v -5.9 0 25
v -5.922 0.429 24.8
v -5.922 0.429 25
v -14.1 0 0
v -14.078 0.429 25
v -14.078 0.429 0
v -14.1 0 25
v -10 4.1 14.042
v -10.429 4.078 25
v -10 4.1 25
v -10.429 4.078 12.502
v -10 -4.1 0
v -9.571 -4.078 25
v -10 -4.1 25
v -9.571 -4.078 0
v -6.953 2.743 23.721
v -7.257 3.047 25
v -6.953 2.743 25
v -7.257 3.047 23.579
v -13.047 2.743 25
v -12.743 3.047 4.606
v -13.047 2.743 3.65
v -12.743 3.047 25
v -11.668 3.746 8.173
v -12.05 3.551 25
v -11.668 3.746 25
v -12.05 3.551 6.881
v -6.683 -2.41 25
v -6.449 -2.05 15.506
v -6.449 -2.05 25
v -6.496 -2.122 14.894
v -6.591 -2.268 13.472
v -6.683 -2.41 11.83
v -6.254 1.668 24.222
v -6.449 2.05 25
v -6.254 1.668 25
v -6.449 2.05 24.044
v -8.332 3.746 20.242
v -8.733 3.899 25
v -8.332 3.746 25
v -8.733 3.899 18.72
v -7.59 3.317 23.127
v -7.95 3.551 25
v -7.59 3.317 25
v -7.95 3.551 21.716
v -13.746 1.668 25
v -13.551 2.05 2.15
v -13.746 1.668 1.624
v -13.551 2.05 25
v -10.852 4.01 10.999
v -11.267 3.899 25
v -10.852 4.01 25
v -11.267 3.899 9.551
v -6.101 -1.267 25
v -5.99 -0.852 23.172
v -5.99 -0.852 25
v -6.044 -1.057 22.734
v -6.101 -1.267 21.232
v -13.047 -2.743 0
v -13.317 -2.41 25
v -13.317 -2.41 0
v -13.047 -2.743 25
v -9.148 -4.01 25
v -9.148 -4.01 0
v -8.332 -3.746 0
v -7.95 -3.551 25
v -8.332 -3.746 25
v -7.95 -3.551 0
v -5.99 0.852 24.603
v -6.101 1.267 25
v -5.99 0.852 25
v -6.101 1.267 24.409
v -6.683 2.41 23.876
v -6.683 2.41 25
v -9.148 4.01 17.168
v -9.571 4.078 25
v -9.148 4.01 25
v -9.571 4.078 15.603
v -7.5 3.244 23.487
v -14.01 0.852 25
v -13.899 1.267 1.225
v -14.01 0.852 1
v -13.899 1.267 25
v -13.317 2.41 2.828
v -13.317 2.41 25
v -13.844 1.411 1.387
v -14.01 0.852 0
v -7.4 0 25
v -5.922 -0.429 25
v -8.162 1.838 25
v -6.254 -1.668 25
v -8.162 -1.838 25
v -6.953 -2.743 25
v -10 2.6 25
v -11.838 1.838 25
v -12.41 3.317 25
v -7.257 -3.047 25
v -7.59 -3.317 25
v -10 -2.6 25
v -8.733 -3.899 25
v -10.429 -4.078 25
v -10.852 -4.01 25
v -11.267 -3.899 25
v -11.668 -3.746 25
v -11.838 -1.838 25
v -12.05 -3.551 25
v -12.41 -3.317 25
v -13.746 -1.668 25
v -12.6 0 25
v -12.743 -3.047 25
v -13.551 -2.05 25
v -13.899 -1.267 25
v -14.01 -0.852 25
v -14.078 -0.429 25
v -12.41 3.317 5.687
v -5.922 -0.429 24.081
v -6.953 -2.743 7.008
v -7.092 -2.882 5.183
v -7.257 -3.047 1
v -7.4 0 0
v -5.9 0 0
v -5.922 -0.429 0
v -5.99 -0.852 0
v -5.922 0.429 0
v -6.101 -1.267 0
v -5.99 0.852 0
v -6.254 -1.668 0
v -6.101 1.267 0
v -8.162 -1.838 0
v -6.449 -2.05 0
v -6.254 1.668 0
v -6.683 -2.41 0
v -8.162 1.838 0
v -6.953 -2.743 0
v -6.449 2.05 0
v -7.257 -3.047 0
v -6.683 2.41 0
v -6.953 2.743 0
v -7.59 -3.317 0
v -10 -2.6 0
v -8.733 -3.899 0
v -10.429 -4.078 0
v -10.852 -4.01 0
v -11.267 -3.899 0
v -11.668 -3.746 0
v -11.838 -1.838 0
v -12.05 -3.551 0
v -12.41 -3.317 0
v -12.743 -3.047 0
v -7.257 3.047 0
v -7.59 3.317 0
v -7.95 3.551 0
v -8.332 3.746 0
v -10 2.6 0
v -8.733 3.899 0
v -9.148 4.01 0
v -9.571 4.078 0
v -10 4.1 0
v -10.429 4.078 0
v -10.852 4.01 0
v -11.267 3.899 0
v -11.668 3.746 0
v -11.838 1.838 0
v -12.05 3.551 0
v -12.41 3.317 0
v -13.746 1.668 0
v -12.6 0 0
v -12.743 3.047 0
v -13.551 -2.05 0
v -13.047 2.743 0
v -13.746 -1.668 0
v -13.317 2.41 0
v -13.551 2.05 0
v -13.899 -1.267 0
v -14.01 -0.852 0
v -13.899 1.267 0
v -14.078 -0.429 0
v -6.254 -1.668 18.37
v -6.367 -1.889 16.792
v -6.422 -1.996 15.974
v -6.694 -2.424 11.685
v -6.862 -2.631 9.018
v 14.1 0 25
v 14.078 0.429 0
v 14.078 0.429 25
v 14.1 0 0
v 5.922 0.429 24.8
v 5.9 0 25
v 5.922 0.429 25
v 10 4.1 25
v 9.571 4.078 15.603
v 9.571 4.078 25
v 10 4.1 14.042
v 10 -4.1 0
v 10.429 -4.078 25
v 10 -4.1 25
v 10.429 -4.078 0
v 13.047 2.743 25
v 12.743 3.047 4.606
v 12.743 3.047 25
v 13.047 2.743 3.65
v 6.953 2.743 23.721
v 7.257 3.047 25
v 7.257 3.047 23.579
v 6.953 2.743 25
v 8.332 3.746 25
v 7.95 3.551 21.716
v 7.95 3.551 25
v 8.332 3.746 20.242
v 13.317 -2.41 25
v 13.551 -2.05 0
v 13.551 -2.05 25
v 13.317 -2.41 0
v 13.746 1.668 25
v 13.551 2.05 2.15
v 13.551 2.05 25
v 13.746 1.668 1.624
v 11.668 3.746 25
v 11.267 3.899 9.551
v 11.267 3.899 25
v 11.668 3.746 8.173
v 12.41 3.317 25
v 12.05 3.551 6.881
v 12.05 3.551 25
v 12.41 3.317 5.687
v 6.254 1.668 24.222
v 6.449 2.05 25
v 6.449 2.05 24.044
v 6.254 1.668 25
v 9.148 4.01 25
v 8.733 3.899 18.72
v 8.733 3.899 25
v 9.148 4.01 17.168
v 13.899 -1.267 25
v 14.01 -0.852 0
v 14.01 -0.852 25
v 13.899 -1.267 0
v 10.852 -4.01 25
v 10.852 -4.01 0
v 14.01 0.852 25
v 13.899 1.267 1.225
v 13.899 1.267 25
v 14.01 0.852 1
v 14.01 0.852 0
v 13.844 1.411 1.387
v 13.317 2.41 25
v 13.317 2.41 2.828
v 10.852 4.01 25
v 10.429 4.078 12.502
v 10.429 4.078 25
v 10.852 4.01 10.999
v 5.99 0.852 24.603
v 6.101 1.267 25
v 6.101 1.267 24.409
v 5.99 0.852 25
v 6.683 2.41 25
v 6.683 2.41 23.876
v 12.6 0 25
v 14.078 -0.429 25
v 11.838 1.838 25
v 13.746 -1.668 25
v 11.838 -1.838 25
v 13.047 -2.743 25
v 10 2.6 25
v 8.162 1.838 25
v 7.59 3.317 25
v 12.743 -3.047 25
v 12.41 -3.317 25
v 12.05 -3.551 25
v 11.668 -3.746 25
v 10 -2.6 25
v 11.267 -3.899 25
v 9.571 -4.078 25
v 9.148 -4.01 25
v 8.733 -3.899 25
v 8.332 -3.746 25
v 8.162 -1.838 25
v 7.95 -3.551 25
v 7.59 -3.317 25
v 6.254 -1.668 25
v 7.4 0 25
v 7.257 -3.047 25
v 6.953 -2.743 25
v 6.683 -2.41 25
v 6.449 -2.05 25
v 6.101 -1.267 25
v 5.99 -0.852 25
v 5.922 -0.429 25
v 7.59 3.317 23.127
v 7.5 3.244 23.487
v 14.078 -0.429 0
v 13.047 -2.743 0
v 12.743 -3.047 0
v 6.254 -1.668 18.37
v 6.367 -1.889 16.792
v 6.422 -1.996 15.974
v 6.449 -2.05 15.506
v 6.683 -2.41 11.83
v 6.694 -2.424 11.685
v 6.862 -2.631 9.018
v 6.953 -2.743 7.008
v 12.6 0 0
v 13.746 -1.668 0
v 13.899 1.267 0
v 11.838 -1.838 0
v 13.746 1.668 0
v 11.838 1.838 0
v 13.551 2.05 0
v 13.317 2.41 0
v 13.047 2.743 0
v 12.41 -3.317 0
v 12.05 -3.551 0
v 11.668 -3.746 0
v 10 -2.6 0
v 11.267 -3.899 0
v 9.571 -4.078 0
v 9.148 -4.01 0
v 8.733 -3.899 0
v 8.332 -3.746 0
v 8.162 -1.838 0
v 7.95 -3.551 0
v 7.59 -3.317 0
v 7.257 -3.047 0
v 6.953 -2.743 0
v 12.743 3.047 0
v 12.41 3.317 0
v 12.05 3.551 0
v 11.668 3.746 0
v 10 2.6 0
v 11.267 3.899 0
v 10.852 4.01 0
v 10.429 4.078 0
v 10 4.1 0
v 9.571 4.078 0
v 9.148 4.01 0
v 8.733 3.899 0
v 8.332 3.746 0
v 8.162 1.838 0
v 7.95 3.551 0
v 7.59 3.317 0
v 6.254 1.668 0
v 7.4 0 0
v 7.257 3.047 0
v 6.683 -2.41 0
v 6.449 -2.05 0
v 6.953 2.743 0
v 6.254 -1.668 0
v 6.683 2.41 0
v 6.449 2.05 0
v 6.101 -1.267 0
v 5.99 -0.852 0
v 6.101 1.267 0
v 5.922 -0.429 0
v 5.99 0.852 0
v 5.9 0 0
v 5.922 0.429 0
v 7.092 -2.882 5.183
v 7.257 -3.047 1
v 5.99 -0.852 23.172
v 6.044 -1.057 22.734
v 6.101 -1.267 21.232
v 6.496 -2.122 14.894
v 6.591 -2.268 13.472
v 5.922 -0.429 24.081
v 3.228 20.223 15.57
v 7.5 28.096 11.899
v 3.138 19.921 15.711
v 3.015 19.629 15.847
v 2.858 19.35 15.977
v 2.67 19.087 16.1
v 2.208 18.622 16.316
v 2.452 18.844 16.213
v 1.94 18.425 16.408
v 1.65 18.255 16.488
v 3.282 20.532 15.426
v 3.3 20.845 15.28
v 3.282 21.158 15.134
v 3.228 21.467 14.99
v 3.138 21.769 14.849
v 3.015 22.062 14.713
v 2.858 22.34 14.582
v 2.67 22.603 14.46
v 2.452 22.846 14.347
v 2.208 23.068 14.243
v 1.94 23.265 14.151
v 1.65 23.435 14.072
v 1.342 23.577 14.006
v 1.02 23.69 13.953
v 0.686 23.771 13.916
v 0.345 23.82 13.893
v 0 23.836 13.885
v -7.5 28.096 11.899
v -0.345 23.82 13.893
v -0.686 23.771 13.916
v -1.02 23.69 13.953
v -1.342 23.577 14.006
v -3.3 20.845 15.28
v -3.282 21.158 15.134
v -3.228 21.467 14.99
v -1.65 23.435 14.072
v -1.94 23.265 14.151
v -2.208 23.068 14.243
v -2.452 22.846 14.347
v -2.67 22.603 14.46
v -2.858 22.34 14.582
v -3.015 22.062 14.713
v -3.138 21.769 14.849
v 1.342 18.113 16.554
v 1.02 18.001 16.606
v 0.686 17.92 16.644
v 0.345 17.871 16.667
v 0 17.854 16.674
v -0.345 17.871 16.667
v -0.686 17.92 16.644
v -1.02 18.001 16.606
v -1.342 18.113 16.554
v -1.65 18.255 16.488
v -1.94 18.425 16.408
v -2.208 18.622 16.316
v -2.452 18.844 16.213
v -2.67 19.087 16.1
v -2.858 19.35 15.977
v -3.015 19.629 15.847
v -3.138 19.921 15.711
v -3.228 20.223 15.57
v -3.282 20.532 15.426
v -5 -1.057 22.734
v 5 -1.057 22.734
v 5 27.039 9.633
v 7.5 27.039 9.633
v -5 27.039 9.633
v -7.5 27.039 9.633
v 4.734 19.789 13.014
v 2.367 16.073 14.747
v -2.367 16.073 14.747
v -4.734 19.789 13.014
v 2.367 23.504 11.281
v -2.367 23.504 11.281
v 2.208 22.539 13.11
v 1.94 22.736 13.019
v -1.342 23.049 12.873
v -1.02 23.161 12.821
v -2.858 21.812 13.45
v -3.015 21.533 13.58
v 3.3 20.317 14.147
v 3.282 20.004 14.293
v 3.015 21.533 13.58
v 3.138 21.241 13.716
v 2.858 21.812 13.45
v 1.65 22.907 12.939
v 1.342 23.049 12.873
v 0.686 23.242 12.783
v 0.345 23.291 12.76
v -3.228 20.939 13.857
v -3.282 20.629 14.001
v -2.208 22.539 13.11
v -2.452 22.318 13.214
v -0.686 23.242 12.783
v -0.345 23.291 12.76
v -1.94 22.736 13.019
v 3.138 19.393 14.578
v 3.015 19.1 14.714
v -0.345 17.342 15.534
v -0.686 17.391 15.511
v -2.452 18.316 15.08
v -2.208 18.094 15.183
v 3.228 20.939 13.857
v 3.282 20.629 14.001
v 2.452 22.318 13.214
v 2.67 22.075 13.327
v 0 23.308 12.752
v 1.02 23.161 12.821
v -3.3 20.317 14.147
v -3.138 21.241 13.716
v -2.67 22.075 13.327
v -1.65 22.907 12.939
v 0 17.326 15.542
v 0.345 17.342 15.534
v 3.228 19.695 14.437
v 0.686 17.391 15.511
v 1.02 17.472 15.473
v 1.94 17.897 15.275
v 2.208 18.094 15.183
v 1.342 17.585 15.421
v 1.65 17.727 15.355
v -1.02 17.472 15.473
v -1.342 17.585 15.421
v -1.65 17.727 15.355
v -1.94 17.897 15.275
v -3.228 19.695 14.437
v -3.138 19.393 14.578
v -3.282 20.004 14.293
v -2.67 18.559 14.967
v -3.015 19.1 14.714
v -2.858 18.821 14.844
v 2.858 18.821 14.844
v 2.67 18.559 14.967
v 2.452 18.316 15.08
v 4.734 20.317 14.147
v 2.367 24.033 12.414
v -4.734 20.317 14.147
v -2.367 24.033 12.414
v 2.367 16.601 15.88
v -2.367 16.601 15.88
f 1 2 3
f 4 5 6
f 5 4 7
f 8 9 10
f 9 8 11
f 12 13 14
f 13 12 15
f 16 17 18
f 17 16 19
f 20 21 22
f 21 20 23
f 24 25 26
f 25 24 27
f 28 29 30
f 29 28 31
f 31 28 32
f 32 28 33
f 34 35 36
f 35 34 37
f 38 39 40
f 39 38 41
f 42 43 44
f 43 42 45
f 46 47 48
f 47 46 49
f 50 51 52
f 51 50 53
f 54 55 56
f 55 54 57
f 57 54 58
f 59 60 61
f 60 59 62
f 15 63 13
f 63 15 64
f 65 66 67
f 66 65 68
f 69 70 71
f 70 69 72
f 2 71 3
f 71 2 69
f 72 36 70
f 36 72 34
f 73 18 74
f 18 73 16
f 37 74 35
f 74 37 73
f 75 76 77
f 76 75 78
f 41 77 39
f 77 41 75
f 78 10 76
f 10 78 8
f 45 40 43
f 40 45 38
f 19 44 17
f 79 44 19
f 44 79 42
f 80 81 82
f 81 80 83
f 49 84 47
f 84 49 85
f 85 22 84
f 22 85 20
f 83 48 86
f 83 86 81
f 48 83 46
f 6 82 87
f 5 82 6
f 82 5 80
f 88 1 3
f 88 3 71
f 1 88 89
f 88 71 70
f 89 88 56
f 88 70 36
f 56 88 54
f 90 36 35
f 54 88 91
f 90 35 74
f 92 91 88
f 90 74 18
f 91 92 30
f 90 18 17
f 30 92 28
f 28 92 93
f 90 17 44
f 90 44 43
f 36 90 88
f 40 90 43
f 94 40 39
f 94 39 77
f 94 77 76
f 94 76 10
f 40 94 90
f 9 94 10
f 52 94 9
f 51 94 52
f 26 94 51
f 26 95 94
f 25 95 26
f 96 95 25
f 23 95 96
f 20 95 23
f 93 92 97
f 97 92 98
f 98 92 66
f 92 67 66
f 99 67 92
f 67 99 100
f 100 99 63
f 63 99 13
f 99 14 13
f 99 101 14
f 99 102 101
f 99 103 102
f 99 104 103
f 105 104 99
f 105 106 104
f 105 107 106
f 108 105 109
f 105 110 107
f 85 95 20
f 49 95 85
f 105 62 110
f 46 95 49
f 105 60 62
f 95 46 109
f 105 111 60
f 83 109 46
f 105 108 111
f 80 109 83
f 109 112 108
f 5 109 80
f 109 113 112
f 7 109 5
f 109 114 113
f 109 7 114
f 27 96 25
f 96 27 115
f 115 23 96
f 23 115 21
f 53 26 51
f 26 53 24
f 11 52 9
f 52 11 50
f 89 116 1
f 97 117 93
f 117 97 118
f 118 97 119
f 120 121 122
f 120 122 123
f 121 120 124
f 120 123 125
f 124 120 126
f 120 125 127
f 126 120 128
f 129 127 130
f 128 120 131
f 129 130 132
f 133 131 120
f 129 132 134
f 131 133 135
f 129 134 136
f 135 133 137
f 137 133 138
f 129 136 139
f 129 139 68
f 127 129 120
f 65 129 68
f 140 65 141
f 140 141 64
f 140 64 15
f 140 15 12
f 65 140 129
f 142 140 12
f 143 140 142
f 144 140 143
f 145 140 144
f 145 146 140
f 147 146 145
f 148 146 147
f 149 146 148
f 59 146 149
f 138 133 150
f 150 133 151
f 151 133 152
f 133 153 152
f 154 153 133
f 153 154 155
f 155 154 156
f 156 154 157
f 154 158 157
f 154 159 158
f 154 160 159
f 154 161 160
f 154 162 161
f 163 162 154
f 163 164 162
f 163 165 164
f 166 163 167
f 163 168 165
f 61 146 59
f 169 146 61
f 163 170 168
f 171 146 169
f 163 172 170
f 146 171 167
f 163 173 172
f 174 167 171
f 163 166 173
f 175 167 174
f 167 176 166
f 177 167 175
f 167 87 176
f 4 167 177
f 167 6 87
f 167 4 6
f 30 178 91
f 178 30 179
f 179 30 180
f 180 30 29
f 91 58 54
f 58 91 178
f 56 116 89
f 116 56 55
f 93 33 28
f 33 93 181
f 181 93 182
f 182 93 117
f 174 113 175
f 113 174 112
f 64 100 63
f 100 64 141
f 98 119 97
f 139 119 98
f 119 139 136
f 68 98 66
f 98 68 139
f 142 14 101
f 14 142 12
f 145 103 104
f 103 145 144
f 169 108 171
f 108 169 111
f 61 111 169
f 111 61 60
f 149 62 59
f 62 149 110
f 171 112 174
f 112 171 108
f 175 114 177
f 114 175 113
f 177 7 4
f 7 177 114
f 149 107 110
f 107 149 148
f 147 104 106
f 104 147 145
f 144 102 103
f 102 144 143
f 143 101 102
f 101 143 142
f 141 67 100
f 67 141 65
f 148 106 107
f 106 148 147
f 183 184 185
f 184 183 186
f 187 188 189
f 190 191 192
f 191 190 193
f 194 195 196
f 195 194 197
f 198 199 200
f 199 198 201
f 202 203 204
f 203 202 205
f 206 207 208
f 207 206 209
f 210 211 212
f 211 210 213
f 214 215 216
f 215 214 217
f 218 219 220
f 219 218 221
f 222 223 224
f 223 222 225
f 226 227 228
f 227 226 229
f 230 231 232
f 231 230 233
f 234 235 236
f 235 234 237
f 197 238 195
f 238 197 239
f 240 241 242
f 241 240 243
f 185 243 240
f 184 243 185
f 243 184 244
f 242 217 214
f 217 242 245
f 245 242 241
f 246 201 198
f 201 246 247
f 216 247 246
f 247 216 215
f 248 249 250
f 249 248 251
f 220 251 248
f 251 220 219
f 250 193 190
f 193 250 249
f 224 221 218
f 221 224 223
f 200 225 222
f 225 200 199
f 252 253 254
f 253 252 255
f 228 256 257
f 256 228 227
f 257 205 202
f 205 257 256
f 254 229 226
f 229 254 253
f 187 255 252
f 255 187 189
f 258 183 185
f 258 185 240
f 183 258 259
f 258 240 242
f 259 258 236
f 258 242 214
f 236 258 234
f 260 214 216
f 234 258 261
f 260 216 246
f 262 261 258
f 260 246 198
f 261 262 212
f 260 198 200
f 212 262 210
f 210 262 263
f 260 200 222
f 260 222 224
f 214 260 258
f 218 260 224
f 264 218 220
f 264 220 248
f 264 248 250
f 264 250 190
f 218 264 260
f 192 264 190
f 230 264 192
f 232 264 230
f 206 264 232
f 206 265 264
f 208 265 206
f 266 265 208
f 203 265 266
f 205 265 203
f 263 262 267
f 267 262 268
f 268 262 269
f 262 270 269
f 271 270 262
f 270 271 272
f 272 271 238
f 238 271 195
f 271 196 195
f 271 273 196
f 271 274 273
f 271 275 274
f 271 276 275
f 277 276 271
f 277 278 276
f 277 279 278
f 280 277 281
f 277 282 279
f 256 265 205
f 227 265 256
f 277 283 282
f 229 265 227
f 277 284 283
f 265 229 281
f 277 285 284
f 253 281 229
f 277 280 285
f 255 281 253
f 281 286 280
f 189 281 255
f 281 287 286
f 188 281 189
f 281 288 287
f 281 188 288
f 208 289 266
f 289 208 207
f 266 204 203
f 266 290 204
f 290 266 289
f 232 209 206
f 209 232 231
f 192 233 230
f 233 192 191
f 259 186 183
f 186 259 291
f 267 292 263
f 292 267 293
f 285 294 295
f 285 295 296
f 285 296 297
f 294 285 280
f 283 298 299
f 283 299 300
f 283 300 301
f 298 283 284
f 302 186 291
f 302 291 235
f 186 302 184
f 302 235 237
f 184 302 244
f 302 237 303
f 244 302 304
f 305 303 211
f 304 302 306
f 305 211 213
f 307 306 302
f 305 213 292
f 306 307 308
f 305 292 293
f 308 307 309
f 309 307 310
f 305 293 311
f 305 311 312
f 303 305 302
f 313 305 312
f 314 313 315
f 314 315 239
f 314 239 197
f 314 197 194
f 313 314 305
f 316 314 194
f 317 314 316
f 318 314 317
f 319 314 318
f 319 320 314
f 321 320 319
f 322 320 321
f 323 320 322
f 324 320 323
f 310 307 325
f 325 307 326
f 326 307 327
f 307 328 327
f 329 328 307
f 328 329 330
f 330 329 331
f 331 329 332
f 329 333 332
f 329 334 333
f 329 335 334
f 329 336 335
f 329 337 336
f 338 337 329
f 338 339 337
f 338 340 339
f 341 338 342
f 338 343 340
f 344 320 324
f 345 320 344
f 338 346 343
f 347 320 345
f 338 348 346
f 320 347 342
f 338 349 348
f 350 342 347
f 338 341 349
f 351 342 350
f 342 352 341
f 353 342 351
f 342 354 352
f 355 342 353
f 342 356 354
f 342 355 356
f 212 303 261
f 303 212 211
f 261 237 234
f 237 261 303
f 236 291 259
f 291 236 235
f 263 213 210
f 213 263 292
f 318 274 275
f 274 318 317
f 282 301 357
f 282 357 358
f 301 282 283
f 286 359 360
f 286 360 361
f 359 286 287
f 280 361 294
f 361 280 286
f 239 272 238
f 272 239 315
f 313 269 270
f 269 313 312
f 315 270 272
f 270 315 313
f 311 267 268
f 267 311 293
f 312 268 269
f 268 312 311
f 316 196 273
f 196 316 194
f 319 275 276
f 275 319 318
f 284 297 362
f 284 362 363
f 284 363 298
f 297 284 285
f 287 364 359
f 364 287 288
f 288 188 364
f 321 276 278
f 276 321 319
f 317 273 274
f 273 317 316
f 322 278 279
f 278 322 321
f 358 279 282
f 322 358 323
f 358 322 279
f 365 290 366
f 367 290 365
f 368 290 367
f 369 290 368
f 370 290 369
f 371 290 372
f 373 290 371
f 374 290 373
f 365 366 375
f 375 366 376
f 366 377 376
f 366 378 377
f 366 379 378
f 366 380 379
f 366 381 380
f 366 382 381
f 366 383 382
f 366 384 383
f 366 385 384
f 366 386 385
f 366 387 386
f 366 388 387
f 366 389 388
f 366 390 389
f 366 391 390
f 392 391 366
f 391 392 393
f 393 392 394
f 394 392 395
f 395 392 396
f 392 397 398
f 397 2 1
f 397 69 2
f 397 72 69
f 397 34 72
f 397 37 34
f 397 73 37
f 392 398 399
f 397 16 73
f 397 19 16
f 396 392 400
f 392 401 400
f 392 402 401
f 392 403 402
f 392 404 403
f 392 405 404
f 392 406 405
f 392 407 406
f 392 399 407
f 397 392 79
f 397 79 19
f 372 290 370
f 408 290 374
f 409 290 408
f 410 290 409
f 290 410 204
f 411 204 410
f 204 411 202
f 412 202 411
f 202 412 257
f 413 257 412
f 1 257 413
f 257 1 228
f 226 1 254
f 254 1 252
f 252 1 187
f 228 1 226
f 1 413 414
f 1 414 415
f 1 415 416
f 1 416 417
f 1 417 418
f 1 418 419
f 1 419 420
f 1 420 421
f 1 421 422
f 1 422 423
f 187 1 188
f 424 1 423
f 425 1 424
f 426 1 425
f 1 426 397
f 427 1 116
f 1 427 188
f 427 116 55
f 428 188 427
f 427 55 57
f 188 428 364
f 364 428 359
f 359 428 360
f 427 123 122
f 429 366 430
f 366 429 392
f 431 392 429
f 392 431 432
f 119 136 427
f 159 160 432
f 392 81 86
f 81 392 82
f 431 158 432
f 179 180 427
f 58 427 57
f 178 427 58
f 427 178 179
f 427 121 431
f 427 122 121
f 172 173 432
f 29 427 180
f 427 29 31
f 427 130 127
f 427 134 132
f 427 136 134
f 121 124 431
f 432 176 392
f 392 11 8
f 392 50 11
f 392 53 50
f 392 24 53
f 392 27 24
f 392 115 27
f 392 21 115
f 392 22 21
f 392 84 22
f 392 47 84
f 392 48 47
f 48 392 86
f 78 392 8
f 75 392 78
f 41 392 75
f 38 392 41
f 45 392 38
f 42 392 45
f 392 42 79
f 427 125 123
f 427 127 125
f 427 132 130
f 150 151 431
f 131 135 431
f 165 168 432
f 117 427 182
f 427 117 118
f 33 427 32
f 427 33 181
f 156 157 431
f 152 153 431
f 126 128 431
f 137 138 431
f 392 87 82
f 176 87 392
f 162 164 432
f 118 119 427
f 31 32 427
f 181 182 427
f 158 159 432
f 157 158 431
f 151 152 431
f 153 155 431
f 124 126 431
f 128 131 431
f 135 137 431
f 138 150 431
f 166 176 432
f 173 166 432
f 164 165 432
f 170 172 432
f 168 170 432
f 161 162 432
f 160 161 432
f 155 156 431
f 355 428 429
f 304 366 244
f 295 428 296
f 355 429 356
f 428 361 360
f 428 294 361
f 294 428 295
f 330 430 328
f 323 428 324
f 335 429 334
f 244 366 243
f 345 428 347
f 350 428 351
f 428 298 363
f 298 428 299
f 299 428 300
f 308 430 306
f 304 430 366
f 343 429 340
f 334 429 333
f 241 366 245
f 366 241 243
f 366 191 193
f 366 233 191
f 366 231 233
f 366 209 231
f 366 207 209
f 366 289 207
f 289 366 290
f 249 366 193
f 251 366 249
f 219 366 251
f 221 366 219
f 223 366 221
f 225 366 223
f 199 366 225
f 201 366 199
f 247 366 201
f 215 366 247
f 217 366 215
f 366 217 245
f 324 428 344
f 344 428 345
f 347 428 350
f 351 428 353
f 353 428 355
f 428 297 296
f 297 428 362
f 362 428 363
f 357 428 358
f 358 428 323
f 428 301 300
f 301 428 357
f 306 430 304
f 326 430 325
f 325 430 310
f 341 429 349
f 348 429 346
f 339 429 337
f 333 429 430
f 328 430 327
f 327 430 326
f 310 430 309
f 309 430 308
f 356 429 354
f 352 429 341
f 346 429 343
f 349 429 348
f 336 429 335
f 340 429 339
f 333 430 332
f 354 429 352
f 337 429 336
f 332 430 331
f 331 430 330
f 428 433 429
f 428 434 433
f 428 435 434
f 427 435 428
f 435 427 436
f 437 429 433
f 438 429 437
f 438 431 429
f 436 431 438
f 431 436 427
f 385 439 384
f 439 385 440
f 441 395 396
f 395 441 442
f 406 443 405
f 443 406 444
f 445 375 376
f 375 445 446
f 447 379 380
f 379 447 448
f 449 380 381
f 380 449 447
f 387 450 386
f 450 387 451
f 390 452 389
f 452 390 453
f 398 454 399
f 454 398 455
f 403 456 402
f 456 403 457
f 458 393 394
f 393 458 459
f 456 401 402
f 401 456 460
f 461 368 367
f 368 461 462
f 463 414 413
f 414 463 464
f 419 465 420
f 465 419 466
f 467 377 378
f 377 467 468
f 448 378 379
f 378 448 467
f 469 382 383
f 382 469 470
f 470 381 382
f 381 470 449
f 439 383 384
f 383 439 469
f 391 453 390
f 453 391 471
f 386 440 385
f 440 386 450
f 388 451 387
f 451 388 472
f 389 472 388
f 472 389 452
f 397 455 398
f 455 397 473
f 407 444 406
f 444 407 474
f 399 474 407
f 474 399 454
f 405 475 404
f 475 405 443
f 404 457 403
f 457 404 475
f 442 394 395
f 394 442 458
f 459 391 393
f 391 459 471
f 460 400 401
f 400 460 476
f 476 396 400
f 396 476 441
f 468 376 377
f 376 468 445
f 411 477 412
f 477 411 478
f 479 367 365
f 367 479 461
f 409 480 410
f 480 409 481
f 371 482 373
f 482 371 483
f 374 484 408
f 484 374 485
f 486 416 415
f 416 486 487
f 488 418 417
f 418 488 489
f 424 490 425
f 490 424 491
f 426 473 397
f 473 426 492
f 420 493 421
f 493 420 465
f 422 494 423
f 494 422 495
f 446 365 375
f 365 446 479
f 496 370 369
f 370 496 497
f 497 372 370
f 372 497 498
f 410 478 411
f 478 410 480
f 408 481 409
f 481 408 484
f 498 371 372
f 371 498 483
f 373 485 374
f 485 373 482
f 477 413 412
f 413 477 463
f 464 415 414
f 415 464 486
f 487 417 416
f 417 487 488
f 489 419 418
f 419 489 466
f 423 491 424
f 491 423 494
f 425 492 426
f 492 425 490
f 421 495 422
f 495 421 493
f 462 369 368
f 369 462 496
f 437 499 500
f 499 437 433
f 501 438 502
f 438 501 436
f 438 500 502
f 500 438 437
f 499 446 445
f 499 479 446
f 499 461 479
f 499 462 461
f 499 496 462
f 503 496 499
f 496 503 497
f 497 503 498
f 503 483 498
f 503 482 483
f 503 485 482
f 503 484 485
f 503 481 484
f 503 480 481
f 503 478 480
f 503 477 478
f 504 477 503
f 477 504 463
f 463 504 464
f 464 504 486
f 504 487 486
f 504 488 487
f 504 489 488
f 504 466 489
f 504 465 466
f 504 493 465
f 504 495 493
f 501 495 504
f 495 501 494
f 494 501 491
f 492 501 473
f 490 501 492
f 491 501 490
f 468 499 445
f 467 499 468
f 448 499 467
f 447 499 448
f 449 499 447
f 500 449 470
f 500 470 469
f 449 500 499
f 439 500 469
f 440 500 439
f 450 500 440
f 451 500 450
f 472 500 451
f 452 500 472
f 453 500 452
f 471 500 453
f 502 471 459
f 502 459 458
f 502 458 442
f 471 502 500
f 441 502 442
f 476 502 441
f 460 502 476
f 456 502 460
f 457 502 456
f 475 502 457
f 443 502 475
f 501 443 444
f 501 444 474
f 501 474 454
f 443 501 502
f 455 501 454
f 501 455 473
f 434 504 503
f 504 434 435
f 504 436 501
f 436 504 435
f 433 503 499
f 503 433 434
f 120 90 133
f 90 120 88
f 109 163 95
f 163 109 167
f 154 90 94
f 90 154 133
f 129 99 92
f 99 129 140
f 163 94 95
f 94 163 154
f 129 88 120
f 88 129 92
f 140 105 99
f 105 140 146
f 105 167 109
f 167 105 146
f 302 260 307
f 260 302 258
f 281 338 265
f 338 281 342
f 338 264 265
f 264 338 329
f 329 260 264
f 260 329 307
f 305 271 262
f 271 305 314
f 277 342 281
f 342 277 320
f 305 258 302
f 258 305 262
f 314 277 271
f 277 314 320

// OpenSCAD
// =============================================================================
// PROJECT: UNIVERSAL FPV SMA STANDOFF MOUNT
// VERSION: 4.0 (Final Parametric Library Version)
// DESCRIPTION: A support-free, TPU-optimized mount that slides over rear 
//              frame standoffs. Designed for SMA Bulkhead fittings.
// =============================================================================

/* [Frame Physical Dimensions] */
// Center-to-center distance between your rear standoffs (mm)
standoff_dist   = 20.0;  
// Diameter of your standoffs (Standard M3 is usually 5.0 to 5.5mm)
standoff_dia    = 5.0;   
// Height of standoffs (Distance between bottom and top plates)
standoff_height = 25.0;  
// Thickness of the TPU walls around the standoffs
wall_thickness  = 1.6;   
// Adjustment for fit (Negative values make the hole tighter for TPU "grip")
fit_tolerance   = 0.2;  

/* [Antenna Platform Settings] */
// Angle of the antenna tilted back from vertical (Degrees)
antenna_angle   = 25;    
// Distance from the front edge of the mount to the center of the SMA hole
platform_offset = 23.0;  
// Width of the rectangular mounting surface
platform_w      = 15.0;  
// Extra material behind the hole for crash durability (mm)
platform_padding = 8.0;  
// Thickness of the mounting plate (2.5mm is ideal for Bulkhead threads)
mounting_thick  = 2.5;   

/* [Hardware Specifications] */
// Diameter for the threaded SMA barrel (6.4mm - 6.6mm is standard)
sma_hole_dia    = 6.6;   
// Hex nut flat-to-flat size (8.0mm - 8.2mm is standard)
sma_hex_flat    = 8.2;   
// Thickness of the "Shoulder" that the nut presses against
shoulder_thick  = 1.25; 

/* [Internal Math - Do Not Change] */
$fn = 60; // Smoothness of circles
platform_l = platform_offset + platform_padding; // Total plate length

// =============================================================================
// RENDER LOGIC
// =============================================================================

difference() {
    // --- STEP 1: CREATE THE SOLID BODY ---
    union() {
        // Create the left and right standoff sleeves
        for(i=[-1, 1]) {
            translate([i * standoff_dist/2, 0, 0])
                cylinder(h=standoff_height, d=standoff_dia + (wall_thickness*2));
        }

        // Create the Mounting Platform (Angled Rectangle)
        // Positioned flush at (0,0,standoff_height)
        translate([0, 0, standoff_height]) 
            rotate([-antenna_angle, 0, 0])
                translate([-platform_w/2, 0, -mounting_thick]) 
                    cube([platform_w, platform_l, mounting_thick]);

        // Create the Structural Rib Trusses (Reinforcing Ramps)
        for(i=[-1, 1]) {
            hull() {
                // Top Anchor: Locked to the side face of the angled plate
                translate([0, 0, standoff_height]) 
                    rotate([-antenna_angle, 0, 0])
                        translate([i * (platform_w/2 - 1.25), platform_l/2, -mounting_thick/2])
                            cube([2.5, platform_l, mounting_thick], center=true);
                
                // Bottom Anchor: Flared base at the bottom of the sleeve
                translate([i * standoff_dist/2, 0, 0])
                    cylinder(h=1, d=standoff_dia + (wall_thickness*2));
            }
        }
    }

    // --- STEP 2: CARVE THE HOLES ---
    
    // Standoff Holes (Rendered as Octagons for better TPU friction/grip)
    for(i=[-1, 1]) {
        translate([i * standoff_dist/2, 0, -1])
            cylinder(h=standoff_height + 2, d=standoff_dia + fit_tolerance, $fn=8);
    }
    
    // The SMA Connector Stack (Hole + Hex Socket)
    translate([0, 0, standoff_height])
        rotate([-antenna_angle, 0, 0])
            translate([0, platform_offset, 0]) {
                
                // 1. Thread Path: Small hole going completely through the plate
                translate([0, 0, -50])
                    cylinder(h=55, d=sma_hole_dia);
                
                // 2. Hex Trap: Large 6-sided socket for the bulkhead base
                // Calculated to leave exactly 'shoulder_thick' of material on top
                translate([0, 0, -50]) 
                    cylinder(h=50 - shoulder_thick, d=sma_hex_flat / cos(30), $fn=6);
            }
}
